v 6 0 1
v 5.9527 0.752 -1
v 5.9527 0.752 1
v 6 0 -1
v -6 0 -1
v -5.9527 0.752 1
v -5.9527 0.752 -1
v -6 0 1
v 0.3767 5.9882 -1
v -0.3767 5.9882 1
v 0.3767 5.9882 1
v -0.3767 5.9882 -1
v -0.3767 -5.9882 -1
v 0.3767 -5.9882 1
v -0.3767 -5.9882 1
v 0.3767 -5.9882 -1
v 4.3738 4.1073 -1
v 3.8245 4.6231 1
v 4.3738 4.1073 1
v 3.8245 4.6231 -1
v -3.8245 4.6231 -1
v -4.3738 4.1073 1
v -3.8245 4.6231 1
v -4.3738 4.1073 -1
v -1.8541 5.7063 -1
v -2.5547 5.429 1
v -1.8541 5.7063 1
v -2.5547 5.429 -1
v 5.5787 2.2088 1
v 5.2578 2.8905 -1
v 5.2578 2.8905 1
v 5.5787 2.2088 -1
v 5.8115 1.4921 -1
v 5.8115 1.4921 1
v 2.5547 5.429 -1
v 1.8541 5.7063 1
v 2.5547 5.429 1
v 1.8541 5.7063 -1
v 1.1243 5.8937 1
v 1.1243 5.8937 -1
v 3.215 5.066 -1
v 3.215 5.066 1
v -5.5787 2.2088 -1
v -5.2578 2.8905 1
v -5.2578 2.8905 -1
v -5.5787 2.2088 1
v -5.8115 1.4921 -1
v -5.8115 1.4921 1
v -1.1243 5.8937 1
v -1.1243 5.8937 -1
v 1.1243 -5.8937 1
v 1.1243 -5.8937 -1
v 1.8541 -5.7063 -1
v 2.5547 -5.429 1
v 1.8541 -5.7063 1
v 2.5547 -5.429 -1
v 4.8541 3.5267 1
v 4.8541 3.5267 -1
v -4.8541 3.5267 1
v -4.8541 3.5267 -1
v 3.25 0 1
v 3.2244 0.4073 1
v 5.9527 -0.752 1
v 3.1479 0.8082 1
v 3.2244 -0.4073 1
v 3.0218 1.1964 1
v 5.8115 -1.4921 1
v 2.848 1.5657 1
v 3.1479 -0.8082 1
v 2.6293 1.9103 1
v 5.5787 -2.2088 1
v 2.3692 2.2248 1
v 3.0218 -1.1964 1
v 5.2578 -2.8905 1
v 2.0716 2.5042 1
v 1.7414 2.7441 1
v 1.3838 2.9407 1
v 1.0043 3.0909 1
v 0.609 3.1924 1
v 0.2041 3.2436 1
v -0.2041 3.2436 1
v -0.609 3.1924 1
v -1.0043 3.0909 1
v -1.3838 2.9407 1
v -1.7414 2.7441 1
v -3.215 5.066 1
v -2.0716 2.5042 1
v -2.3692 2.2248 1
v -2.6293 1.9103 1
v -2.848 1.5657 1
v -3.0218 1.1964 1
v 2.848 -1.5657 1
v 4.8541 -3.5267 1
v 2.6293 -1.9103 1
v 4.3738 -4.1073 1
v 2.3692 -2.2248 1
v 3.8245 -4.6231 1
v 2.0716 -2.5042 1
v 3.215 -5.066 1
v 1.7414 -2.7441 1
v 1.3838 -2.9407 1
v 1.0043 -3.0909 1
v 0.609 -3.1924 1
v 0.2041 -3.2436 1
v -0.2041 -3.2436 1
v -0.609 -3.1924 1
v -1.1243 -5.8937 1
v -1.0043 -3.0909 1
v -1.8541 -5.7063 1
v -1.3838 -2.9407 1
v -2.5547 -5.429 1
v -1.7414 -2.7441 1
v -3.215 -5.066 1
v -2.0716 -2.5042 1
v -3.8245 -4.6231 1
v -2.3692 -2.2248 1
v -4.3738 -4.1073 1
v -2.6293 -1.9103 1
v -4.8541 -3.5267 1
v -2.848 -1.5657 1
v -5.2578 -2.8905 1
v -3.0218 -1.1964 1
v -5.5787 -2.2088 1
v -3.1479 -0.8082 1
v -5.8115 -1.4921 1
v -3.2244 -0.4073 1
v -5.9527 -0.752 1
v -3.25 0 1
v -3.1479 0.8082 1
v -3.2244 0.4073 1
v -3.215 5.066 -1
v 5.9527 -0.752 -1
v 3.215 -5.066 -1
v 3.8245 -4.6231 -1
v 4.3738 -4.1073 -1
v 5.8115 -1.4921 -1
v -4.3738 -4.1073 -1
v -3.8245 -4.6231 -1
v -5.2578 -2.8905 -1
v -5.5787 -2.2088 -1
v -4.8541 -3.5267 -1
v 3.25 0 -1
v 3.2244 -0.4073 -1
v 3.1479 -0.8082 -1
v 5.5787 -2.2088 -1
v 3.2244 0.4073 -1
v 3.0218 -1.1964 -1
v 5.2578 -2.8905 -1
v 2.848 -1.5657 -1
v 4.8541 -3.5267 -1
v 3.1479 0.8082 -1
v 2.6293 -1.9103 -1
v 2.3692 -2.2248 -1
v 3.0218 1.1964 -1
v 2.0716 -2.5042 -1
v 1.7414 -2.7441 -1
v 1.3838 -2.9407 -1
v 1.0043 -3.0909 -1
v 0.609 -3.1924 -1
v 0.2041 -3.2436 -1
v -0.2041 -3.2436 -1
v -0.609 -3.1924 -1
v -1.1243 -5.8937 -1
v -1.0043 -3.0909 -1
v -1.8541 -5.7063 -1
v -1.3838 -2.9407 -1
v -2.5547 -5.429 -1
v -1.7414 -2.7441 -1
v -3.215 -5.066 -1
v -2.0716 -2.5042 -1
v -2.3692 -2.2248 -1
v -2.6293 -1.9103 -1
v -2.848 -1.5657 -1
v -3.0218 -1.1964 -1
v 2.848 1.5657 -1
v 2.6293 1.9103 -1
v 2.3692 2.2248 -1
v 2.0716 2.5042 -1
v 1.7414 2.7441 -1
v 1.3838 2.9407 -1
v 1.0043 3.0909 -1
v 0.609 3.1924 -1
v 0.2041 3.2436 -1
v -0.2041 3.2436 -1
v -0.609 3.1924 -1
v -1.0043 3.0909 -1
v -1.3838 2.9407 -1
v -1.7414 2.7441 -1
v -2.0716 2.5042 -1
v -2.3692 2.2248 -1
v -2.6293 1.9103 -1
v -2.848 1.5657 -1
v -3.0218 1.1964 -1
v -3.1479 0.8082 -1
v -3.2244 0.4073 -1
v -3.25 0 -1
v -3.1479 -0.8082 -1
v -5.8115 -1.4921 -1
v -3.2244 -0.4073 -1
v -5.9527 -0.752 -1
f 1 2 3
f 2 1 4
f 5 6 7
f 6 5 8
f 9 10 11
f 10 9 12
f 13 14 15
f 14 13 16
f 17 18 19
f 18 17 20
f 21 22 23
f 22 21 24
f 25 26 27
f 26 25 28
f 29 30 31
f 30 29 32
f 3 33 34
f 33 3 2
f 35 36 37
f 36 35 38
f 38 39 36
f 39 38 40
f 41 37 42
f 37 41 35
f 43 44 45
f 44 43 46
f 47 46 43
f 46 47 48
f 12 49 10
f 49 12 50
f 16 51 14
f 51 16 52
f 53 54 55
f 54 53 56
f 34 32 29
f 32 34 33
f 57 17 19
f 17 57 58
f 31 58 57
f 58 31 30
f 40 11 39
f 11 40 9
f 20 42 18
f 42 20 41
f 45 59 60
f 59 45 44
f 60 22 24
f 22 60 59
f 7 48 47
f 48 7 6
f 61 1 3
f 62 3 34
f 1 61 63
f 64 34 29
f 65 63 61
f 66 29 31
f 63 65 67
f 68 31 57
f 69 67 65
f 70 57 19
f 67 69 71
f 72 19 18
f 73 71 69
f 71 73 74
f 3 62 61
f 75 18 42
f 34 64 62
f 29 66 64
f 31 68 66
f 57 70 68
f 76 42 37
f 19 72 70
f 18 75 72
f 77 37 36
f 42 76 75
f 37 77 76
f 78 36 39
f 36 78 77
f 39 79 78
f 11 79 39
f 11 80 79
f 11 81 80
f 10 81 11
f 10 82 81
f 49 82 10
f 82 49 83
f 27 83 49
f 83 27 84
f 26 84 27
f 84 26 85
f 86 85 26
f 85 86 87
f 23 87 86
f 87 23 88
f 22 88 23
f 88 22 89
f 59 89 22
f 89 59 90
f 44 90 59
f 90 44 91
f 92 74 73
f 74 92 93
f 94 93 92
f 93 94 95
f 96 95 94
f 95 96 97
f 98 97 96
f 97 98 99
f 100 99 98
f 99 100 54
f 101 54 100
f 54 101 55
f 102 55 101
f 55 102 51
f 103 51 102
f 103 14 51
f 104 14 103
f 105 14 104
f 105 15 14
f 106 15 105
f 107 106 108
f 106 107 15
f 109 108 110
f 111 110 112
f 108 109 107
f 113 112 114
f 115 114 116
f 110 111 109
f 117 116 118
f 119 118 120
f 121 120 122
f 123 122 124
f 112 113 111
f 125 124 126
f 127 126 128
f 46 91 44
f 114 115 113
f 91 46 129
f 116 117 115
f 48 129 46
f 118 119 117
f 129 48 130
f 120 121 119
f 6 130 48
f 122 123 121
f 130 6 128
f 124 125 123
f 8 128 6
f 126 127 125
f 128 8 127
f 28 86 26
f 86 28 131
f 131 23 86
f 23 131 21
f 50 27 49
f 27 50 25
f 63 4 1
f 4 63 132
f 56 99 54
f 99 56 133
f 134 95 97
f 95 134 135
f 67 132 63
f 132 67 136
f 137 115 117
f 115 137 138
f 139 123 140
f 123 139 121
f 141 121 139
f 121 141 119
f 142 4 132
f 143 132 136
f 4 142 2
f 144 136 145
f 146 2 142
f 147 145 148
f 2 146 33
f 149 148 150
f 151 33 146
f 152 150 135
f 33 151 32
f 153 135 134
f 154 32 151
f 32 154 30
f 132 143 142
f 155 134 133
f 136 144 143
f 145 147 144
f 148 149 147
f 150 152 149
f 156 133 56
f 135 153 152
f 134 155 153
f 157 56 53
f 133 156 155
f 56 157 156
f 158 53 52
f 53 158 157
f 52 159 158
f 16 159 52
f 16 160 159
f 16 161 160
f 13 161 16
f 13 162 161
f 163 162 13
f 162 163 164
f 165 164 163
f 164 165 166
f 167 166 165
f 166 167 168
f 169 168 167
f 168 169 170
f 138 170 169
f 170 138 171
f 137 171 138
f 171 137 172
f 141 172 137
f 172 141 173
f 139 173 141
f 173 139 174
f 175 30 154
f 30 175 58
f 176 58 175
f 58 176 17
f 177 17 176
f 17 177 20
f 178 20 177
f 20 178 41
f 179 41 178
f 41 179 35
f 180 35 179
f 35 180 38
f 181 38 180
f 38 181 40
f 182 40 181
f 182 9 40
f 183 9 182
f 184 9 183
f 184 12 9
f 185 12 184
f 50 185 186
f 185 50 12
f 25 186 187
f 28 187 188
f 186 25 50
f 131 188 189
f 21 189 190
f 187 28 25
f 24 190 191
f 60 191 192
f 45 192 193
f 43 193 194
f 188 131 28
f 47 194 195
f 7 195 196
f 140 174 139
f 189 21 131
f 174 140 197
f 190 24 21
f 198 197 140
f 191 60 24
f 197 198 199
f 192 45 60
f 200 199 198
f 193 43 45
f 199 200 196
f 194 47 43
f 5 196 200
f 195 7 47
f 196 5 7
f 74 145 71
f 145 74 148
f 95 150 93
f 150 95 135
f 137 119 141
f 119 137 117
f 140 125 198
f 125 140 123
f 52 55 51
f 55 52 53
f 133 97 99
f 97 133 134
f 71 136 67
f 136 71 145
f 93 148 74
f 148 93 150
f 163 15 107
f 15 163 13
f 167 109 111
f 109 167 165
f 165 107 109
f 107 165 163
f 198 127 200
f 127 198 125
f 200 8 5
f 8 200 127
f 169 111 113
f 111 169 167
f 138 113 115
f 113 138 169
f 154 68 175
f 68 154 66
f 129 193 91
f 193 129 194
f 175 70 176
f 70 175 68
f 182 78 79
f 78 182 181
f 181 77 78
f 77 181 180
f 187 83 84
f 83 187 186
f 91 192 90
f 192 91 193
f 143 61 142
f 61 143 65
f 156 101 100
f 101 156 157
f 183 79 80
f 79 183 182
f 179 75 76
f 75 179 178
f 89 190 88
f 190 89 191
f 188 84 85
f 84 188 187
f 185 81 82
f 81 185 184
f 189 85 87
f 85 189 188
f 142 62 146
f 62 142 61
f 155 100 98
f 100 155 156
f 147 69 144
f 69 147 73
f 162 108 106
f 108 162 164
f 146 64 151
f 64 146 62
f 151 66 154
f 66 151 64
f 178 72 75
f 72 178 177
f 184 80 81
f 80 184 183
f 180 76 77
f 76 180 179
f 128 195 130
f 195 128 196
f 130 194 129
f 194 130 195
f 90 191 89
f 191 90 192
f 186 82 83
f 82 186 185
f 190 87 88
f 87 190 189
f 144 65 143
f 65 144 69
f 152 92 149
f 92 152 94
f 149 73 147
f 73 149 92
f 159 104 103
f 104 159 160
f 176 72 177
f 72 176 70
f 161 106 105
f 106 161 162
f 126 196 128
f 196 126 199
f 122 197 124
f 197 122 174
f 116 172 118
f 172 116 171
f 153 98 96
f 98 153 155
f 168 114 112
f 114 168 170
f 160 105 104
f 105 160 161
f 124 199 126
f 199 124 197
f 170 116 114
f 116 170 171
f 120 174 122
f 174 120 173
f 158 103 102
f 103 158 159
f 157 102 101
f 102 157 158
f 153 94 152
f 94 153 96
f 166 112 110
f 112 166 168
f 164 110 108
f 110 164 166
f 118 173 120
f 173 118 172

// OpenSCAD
$fn = 50;


difference() {
	union() {
		translate(v = [0, 0, -1.0000000000]) {
			cylinder(h = 2, r = 6.0000000000);
		}
	}
	union() {
		translate(v = [0, 0, -100.0000000000]) {
			cylinder(h = 200, r = 3.2500000000);
		}
	}
}
